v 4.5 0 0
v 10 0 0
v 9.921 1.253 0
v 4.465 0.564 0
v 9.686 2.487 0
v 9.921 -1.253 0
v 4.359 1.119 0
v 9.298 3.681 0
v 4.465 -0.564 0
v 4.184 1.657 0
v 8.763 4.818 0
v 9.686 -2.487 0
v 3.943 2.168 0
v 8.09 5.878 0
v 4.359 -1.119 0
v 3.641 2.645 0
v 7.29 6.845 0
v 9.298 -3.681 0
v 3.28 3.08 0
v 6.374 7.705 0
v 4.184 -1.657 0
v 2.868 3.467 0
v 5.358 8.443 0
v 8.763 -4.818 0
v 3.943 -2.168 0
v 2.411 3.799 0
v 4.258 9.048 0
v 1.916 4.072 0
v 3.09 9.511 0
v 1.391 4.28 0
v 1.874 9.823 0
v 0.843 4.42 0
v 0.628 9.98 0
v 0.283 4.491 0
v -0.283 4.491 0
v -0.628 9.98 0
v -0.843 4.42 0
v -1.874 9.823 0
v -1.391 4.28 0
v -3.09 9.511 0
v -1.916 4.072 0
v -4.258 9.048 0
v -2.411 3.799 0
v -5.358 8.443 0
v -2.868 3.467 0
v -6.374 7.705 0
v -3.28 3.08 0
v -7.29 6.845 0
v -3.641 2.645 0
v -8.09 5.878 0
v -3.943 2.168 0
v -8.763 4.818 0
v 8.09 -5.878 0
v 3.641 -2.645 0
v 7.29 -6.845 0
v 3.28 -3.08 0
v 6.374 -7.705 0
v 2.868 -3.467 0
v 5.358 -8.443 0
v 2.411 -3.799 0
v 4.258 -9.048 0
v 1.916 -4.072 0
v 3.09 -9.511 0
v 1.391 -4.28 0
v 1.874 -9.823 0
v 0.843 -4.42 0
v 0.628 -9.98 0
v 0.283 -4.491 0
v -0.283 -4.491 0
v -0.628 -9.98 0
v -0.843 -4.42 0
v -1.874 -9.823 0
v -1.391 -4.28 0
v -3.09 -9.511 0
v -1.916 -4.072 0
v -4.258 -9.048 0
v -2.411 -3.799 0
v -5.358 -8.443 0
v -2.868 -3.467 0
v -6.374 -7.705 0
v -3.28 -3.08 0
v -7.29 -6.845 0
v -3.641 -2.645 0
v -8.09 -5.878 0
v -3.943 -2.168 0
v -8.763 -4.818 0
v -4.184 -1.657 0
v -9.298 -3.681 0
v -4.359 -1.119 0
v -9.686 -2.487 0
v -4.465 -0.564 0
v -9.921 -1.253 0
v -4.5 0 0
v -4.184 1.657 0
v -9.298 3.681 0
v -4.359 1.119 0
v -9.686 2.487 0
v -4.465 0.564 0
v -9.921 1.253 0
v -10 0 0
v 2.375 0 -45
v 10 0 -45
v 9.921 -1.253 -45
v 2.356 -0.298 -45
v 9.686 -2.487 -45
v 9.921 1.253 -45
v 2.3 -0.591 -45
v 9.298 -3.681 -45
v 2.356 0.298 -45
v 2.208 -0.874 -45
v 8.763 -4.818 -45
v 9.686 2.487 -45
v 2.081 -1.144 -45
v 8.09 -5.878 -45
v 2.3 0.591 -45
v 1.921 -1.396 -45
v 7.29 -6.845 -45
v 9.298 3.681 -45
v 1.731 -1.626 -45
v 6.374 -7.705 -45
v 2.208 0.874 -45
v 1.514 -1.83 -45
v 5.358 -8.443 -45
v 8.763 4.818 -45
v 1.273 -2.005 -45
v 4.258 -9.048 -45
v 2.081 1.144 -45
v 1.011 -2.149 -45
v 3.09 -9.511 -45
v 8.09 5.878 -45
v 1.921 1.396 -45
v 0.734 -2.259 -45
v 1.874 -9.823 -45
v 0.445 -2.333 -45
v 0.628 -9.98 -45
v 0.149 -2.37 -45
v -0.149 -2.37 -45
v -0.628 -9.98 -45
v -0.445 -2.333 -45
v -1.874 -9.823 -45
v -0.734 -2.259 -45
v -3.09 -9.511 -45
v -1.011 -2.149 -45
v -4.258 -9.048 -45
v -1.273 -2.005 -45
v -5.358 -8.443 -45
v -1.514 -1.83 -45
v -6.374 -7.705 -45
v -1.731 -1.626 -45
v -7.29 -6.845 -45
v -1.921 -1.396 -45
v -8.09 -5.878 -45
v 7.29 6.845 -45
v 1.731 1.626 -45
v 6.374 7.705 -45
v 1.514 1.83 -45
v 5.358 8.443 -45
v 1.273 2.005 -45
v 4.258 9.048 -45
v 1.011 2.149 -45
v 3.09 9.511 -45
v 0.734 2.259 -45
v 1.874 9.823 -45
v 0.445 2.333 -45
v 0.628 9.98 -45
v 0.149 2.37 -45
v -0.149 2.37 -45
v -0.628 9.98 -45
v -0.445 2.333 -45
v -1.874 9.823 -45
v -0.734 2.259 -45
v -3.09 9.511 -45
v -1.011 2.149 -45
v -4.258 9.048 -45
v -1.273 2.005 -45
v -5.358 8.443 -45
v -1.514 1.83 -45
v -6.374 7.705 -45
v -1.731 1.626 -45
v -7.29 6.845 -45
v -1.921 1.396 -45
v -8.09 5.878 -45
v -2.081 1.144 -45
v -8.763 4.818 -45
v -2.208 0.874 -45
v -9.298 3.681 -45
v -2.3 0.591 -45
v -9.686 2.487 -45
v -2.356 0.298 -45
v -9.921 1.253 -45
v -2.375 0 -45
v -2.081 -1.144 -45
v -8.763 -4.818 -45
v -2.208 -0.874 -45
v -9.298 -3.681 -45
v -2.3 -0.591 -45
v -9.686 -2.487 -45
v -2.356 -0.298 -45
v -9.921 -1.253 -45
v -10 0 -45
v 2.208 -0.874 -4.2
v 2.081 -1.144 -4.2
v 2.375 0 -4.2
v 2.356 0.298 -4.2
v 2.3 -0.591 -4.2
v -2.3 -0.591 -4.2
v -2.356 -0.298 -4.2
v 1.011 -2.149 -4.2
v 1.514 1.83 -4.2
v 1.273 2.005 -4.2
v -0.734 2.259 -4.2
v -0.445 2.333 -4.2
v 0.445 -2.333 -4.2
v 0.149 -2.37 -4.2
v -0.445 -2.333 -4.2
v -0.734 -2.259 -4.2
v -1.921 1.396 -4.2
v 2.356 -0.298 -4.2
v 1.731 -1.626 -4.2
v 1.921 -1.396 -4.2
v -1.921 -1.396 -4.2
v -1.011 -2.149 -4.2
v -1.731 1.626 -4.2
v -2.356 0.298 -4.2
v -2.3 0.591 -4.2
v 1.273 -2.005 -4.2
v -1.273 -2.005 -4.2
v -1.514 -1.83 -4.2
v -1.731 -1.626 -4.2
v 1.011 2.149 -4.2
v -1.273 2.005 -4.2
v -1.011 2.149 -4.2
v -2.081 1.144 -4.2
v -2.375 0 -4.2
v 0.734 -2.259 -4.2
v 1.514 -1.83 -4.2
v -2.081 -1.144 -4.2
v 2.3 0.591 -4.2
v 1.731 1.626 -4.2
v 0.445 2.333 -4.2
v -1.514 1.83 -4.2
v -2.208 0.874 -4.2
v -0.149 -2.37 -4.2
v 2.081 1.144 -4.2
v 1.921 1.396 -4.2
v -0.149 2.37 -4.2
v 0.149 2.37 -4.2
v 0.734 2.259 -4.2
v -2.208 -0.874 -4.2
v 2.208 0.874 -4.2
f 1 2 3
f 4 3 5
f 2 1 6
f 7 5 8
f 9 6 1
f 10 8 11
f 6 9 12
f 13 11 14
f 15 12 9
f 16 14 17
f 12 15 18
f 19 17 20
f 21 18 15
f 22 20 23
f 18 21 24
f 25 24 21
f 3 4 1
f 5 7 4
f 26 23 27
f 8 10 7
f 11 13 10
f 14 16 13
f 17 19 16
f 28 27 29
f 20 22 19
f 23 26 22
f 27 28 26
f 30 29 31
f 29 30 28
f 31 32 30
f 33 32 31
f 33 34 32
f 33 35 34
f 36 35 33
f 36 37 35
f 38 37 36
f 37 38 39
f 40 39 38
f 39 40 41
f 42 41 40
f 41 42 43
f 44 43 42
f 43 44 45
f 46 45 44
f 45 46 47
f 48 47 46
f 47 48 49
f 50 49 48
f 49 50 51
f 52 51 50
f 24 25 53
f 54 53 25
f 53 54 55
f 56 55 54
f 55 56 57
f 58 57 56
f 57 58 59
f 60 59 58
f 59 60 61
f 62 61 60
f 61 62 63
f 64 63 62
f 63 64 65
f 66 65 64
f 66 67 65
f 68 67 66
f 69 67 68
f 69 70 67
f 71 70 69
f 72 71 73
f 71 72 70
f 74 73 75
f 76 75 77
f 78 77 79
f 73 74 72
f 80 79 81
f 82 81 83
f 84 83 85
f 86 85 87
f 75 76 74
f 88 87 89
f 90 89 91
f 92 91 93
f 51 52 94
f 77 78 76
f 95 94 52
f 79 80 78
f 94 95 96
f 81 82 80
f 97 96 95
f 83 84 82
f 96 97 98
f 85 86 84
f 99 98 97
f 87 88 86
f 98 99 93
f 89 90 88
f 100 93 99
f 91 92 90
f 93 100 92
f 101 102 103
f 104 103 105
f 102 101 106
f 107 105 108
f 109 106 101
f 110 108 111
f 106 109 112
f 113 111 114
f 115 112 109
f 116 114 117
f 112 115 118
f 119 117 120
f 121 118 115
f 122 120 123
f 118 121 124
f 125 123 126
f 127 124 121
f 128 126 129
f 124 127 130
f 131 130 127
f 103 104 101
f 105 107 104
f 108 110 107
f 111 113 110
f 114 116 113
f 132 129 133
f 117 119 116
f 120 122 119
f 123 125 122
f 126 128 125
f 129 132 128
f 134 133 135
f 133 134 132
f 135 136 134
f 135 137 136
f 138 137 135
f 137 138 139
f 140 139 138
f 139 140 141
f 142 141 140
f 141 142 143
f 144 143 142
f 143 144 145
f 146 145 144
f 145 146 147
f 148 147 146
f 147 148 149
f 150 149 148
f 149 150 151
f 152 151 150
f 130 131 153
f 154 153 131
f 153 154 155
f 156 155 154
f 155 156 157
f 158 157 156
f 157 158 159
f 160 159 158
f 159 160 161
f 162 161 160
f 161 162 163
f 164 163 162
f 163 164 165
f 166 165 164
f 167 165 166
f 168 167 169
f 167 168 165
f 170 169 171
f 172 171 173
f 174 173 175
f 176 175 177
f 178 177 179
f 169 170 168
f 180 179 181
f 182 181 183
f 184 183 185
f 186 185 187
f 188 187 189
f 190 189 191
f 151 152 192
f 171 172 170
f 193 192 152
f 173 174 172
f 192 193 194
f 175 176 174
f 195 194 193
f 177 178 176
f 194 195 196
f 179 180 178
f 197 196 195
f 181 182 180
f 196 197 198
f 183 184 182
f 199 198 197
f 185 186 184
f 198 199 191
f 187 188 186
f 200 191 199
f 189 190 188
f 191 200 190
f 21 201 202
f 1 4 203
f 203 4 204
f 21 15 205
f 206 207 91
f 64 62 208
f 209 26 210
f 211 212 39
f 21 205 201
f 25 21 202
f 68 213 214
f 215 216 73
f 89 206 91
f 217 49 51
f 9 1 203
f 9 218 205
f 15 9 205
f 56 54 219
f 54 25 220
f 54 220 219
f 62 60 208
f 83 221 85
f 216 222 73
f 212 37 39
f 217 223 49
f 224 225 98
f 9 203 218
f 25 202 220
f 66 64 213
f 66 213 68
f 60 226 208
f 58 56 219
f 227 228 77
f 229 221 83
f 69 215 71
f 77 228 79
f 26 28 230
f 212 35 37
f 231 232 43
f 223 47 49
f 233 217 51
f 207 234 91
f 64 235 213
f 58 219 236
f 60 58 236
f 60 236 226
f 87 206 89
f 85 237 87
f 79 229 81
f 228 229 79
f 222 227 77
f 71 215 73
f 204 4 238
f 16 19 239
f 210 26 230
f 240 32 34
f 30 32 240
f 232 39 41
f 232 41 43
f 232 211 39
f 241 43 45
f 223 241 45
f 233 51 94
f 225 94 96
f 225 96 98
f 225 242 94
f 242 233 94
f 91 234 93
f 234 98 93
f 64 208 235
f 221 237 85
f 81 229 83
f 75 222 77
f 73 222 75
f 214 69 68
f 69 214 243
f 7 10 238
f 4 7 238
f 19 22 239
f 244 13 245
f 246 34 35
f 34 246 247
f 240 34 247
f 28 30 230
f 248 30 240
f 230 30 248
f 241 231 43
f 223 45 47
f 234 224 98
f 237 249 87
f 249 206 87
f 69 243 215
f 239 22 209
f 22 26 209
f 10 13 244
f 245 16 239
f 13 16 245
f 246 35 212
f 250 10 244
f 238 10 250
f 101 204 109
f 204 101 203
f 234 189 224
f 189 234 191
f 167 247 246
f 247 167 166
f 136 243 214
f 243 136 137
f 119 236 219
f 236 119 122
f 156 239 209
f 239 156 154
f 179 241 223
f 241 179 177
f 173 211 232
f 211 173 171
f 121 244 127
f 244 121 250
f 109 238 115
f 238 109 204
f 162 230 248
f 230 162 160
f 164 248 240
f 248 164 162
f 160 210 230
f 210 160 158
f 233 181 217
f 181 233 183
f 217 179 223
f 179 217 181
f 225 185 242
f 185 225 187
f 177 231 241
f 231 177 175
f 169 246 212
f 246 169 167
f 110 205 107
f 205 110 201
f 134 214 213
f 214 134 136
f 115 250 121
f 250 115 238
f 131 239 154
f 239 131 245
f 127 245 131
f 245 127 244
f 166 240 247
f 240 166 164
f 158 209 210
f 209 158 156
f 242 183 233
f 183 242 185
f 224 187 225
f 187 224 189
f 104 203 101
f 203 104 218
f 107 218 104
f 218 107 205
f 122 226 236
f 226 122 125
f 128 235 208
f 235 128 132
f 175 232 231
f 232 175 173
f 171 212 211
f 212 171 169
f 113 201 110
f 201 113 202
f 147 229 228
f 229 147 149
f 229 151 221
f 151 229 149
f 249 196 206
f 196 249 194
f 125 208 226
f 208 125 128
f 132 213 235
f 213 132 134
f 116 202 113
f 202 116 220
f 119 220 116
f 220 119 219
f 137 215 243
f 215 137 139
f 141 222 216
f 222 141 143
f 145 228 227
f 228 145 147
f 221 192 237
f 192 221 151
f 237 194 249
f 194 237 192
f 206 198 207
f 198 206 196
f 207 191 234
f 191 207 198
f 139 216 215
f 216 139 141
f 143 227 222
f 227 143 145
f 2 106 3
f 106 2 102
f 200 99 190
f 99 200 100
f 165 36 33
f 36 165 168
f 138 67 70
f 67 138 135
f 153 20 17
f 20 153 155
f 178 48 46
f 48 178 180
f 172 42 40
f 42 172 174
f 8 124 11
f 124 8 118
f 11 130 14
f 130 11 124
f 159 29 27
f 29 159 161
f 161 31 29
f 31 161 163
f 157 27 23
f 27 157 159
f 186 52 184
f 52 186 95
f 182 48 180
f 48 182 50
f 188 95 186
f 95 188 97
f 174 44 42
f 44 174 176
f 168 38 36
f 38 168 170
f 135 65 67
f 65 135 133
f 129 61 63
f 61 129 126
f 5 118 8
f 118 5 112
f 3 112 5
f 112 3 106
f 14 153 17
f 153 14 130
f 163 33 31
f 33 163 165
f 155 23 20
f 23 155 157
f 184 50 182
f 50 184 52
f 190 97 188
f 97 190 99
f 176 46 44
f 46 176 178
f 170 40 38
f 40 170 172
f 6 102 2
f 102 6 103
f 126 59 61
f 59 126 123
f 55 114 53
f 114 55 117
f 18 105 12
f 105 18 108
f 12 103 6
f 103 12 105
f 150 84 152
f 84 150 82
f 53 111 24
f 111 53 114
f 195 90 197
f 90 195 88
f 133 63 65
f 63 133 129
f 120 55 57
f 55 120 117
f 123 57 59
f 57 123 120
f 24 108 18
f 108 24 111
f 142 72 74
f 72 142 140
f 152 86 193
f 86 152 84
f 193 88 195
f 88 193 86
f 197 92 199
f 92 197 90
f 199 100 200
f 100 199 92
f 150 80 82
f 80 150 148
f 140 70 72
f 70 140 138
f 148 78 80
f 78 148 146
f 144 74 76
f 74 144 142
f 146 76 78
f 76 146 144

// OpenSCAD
$fn = 50;


difference() {
	union() {
		translate(v = [0, 0, -45.0000000000]) {
			cylinder(h = 45, r = 10.0000000000);
		}
	}
	union() {
		translate(v = [0, 0, 0]) {
			rotate(a = [0, 0, 0]) {
				difference() {
					union() {
						#translate(v = [0, 0, -45.0000000000]) {
							cylinder(h = 45, r = 2.2500000000);
						}
						#translate(v = [0, 0, -4.2000000000]) {
							cylinder(h = 4.2000000000, r1 = 2.3750000000, r2 = 4.5000000000);
						}
						#translate(v = [0, 0, -45.0000000000]) {
							cylinder(h = 45, r = 2.3750000000);
						}
						#translate(v = [0, 0, -45.0000000000]) {
							cylinder(h = 45, r = 2.2500000000);
						}
					}
					union();
				}
			}
		}
	}
}
